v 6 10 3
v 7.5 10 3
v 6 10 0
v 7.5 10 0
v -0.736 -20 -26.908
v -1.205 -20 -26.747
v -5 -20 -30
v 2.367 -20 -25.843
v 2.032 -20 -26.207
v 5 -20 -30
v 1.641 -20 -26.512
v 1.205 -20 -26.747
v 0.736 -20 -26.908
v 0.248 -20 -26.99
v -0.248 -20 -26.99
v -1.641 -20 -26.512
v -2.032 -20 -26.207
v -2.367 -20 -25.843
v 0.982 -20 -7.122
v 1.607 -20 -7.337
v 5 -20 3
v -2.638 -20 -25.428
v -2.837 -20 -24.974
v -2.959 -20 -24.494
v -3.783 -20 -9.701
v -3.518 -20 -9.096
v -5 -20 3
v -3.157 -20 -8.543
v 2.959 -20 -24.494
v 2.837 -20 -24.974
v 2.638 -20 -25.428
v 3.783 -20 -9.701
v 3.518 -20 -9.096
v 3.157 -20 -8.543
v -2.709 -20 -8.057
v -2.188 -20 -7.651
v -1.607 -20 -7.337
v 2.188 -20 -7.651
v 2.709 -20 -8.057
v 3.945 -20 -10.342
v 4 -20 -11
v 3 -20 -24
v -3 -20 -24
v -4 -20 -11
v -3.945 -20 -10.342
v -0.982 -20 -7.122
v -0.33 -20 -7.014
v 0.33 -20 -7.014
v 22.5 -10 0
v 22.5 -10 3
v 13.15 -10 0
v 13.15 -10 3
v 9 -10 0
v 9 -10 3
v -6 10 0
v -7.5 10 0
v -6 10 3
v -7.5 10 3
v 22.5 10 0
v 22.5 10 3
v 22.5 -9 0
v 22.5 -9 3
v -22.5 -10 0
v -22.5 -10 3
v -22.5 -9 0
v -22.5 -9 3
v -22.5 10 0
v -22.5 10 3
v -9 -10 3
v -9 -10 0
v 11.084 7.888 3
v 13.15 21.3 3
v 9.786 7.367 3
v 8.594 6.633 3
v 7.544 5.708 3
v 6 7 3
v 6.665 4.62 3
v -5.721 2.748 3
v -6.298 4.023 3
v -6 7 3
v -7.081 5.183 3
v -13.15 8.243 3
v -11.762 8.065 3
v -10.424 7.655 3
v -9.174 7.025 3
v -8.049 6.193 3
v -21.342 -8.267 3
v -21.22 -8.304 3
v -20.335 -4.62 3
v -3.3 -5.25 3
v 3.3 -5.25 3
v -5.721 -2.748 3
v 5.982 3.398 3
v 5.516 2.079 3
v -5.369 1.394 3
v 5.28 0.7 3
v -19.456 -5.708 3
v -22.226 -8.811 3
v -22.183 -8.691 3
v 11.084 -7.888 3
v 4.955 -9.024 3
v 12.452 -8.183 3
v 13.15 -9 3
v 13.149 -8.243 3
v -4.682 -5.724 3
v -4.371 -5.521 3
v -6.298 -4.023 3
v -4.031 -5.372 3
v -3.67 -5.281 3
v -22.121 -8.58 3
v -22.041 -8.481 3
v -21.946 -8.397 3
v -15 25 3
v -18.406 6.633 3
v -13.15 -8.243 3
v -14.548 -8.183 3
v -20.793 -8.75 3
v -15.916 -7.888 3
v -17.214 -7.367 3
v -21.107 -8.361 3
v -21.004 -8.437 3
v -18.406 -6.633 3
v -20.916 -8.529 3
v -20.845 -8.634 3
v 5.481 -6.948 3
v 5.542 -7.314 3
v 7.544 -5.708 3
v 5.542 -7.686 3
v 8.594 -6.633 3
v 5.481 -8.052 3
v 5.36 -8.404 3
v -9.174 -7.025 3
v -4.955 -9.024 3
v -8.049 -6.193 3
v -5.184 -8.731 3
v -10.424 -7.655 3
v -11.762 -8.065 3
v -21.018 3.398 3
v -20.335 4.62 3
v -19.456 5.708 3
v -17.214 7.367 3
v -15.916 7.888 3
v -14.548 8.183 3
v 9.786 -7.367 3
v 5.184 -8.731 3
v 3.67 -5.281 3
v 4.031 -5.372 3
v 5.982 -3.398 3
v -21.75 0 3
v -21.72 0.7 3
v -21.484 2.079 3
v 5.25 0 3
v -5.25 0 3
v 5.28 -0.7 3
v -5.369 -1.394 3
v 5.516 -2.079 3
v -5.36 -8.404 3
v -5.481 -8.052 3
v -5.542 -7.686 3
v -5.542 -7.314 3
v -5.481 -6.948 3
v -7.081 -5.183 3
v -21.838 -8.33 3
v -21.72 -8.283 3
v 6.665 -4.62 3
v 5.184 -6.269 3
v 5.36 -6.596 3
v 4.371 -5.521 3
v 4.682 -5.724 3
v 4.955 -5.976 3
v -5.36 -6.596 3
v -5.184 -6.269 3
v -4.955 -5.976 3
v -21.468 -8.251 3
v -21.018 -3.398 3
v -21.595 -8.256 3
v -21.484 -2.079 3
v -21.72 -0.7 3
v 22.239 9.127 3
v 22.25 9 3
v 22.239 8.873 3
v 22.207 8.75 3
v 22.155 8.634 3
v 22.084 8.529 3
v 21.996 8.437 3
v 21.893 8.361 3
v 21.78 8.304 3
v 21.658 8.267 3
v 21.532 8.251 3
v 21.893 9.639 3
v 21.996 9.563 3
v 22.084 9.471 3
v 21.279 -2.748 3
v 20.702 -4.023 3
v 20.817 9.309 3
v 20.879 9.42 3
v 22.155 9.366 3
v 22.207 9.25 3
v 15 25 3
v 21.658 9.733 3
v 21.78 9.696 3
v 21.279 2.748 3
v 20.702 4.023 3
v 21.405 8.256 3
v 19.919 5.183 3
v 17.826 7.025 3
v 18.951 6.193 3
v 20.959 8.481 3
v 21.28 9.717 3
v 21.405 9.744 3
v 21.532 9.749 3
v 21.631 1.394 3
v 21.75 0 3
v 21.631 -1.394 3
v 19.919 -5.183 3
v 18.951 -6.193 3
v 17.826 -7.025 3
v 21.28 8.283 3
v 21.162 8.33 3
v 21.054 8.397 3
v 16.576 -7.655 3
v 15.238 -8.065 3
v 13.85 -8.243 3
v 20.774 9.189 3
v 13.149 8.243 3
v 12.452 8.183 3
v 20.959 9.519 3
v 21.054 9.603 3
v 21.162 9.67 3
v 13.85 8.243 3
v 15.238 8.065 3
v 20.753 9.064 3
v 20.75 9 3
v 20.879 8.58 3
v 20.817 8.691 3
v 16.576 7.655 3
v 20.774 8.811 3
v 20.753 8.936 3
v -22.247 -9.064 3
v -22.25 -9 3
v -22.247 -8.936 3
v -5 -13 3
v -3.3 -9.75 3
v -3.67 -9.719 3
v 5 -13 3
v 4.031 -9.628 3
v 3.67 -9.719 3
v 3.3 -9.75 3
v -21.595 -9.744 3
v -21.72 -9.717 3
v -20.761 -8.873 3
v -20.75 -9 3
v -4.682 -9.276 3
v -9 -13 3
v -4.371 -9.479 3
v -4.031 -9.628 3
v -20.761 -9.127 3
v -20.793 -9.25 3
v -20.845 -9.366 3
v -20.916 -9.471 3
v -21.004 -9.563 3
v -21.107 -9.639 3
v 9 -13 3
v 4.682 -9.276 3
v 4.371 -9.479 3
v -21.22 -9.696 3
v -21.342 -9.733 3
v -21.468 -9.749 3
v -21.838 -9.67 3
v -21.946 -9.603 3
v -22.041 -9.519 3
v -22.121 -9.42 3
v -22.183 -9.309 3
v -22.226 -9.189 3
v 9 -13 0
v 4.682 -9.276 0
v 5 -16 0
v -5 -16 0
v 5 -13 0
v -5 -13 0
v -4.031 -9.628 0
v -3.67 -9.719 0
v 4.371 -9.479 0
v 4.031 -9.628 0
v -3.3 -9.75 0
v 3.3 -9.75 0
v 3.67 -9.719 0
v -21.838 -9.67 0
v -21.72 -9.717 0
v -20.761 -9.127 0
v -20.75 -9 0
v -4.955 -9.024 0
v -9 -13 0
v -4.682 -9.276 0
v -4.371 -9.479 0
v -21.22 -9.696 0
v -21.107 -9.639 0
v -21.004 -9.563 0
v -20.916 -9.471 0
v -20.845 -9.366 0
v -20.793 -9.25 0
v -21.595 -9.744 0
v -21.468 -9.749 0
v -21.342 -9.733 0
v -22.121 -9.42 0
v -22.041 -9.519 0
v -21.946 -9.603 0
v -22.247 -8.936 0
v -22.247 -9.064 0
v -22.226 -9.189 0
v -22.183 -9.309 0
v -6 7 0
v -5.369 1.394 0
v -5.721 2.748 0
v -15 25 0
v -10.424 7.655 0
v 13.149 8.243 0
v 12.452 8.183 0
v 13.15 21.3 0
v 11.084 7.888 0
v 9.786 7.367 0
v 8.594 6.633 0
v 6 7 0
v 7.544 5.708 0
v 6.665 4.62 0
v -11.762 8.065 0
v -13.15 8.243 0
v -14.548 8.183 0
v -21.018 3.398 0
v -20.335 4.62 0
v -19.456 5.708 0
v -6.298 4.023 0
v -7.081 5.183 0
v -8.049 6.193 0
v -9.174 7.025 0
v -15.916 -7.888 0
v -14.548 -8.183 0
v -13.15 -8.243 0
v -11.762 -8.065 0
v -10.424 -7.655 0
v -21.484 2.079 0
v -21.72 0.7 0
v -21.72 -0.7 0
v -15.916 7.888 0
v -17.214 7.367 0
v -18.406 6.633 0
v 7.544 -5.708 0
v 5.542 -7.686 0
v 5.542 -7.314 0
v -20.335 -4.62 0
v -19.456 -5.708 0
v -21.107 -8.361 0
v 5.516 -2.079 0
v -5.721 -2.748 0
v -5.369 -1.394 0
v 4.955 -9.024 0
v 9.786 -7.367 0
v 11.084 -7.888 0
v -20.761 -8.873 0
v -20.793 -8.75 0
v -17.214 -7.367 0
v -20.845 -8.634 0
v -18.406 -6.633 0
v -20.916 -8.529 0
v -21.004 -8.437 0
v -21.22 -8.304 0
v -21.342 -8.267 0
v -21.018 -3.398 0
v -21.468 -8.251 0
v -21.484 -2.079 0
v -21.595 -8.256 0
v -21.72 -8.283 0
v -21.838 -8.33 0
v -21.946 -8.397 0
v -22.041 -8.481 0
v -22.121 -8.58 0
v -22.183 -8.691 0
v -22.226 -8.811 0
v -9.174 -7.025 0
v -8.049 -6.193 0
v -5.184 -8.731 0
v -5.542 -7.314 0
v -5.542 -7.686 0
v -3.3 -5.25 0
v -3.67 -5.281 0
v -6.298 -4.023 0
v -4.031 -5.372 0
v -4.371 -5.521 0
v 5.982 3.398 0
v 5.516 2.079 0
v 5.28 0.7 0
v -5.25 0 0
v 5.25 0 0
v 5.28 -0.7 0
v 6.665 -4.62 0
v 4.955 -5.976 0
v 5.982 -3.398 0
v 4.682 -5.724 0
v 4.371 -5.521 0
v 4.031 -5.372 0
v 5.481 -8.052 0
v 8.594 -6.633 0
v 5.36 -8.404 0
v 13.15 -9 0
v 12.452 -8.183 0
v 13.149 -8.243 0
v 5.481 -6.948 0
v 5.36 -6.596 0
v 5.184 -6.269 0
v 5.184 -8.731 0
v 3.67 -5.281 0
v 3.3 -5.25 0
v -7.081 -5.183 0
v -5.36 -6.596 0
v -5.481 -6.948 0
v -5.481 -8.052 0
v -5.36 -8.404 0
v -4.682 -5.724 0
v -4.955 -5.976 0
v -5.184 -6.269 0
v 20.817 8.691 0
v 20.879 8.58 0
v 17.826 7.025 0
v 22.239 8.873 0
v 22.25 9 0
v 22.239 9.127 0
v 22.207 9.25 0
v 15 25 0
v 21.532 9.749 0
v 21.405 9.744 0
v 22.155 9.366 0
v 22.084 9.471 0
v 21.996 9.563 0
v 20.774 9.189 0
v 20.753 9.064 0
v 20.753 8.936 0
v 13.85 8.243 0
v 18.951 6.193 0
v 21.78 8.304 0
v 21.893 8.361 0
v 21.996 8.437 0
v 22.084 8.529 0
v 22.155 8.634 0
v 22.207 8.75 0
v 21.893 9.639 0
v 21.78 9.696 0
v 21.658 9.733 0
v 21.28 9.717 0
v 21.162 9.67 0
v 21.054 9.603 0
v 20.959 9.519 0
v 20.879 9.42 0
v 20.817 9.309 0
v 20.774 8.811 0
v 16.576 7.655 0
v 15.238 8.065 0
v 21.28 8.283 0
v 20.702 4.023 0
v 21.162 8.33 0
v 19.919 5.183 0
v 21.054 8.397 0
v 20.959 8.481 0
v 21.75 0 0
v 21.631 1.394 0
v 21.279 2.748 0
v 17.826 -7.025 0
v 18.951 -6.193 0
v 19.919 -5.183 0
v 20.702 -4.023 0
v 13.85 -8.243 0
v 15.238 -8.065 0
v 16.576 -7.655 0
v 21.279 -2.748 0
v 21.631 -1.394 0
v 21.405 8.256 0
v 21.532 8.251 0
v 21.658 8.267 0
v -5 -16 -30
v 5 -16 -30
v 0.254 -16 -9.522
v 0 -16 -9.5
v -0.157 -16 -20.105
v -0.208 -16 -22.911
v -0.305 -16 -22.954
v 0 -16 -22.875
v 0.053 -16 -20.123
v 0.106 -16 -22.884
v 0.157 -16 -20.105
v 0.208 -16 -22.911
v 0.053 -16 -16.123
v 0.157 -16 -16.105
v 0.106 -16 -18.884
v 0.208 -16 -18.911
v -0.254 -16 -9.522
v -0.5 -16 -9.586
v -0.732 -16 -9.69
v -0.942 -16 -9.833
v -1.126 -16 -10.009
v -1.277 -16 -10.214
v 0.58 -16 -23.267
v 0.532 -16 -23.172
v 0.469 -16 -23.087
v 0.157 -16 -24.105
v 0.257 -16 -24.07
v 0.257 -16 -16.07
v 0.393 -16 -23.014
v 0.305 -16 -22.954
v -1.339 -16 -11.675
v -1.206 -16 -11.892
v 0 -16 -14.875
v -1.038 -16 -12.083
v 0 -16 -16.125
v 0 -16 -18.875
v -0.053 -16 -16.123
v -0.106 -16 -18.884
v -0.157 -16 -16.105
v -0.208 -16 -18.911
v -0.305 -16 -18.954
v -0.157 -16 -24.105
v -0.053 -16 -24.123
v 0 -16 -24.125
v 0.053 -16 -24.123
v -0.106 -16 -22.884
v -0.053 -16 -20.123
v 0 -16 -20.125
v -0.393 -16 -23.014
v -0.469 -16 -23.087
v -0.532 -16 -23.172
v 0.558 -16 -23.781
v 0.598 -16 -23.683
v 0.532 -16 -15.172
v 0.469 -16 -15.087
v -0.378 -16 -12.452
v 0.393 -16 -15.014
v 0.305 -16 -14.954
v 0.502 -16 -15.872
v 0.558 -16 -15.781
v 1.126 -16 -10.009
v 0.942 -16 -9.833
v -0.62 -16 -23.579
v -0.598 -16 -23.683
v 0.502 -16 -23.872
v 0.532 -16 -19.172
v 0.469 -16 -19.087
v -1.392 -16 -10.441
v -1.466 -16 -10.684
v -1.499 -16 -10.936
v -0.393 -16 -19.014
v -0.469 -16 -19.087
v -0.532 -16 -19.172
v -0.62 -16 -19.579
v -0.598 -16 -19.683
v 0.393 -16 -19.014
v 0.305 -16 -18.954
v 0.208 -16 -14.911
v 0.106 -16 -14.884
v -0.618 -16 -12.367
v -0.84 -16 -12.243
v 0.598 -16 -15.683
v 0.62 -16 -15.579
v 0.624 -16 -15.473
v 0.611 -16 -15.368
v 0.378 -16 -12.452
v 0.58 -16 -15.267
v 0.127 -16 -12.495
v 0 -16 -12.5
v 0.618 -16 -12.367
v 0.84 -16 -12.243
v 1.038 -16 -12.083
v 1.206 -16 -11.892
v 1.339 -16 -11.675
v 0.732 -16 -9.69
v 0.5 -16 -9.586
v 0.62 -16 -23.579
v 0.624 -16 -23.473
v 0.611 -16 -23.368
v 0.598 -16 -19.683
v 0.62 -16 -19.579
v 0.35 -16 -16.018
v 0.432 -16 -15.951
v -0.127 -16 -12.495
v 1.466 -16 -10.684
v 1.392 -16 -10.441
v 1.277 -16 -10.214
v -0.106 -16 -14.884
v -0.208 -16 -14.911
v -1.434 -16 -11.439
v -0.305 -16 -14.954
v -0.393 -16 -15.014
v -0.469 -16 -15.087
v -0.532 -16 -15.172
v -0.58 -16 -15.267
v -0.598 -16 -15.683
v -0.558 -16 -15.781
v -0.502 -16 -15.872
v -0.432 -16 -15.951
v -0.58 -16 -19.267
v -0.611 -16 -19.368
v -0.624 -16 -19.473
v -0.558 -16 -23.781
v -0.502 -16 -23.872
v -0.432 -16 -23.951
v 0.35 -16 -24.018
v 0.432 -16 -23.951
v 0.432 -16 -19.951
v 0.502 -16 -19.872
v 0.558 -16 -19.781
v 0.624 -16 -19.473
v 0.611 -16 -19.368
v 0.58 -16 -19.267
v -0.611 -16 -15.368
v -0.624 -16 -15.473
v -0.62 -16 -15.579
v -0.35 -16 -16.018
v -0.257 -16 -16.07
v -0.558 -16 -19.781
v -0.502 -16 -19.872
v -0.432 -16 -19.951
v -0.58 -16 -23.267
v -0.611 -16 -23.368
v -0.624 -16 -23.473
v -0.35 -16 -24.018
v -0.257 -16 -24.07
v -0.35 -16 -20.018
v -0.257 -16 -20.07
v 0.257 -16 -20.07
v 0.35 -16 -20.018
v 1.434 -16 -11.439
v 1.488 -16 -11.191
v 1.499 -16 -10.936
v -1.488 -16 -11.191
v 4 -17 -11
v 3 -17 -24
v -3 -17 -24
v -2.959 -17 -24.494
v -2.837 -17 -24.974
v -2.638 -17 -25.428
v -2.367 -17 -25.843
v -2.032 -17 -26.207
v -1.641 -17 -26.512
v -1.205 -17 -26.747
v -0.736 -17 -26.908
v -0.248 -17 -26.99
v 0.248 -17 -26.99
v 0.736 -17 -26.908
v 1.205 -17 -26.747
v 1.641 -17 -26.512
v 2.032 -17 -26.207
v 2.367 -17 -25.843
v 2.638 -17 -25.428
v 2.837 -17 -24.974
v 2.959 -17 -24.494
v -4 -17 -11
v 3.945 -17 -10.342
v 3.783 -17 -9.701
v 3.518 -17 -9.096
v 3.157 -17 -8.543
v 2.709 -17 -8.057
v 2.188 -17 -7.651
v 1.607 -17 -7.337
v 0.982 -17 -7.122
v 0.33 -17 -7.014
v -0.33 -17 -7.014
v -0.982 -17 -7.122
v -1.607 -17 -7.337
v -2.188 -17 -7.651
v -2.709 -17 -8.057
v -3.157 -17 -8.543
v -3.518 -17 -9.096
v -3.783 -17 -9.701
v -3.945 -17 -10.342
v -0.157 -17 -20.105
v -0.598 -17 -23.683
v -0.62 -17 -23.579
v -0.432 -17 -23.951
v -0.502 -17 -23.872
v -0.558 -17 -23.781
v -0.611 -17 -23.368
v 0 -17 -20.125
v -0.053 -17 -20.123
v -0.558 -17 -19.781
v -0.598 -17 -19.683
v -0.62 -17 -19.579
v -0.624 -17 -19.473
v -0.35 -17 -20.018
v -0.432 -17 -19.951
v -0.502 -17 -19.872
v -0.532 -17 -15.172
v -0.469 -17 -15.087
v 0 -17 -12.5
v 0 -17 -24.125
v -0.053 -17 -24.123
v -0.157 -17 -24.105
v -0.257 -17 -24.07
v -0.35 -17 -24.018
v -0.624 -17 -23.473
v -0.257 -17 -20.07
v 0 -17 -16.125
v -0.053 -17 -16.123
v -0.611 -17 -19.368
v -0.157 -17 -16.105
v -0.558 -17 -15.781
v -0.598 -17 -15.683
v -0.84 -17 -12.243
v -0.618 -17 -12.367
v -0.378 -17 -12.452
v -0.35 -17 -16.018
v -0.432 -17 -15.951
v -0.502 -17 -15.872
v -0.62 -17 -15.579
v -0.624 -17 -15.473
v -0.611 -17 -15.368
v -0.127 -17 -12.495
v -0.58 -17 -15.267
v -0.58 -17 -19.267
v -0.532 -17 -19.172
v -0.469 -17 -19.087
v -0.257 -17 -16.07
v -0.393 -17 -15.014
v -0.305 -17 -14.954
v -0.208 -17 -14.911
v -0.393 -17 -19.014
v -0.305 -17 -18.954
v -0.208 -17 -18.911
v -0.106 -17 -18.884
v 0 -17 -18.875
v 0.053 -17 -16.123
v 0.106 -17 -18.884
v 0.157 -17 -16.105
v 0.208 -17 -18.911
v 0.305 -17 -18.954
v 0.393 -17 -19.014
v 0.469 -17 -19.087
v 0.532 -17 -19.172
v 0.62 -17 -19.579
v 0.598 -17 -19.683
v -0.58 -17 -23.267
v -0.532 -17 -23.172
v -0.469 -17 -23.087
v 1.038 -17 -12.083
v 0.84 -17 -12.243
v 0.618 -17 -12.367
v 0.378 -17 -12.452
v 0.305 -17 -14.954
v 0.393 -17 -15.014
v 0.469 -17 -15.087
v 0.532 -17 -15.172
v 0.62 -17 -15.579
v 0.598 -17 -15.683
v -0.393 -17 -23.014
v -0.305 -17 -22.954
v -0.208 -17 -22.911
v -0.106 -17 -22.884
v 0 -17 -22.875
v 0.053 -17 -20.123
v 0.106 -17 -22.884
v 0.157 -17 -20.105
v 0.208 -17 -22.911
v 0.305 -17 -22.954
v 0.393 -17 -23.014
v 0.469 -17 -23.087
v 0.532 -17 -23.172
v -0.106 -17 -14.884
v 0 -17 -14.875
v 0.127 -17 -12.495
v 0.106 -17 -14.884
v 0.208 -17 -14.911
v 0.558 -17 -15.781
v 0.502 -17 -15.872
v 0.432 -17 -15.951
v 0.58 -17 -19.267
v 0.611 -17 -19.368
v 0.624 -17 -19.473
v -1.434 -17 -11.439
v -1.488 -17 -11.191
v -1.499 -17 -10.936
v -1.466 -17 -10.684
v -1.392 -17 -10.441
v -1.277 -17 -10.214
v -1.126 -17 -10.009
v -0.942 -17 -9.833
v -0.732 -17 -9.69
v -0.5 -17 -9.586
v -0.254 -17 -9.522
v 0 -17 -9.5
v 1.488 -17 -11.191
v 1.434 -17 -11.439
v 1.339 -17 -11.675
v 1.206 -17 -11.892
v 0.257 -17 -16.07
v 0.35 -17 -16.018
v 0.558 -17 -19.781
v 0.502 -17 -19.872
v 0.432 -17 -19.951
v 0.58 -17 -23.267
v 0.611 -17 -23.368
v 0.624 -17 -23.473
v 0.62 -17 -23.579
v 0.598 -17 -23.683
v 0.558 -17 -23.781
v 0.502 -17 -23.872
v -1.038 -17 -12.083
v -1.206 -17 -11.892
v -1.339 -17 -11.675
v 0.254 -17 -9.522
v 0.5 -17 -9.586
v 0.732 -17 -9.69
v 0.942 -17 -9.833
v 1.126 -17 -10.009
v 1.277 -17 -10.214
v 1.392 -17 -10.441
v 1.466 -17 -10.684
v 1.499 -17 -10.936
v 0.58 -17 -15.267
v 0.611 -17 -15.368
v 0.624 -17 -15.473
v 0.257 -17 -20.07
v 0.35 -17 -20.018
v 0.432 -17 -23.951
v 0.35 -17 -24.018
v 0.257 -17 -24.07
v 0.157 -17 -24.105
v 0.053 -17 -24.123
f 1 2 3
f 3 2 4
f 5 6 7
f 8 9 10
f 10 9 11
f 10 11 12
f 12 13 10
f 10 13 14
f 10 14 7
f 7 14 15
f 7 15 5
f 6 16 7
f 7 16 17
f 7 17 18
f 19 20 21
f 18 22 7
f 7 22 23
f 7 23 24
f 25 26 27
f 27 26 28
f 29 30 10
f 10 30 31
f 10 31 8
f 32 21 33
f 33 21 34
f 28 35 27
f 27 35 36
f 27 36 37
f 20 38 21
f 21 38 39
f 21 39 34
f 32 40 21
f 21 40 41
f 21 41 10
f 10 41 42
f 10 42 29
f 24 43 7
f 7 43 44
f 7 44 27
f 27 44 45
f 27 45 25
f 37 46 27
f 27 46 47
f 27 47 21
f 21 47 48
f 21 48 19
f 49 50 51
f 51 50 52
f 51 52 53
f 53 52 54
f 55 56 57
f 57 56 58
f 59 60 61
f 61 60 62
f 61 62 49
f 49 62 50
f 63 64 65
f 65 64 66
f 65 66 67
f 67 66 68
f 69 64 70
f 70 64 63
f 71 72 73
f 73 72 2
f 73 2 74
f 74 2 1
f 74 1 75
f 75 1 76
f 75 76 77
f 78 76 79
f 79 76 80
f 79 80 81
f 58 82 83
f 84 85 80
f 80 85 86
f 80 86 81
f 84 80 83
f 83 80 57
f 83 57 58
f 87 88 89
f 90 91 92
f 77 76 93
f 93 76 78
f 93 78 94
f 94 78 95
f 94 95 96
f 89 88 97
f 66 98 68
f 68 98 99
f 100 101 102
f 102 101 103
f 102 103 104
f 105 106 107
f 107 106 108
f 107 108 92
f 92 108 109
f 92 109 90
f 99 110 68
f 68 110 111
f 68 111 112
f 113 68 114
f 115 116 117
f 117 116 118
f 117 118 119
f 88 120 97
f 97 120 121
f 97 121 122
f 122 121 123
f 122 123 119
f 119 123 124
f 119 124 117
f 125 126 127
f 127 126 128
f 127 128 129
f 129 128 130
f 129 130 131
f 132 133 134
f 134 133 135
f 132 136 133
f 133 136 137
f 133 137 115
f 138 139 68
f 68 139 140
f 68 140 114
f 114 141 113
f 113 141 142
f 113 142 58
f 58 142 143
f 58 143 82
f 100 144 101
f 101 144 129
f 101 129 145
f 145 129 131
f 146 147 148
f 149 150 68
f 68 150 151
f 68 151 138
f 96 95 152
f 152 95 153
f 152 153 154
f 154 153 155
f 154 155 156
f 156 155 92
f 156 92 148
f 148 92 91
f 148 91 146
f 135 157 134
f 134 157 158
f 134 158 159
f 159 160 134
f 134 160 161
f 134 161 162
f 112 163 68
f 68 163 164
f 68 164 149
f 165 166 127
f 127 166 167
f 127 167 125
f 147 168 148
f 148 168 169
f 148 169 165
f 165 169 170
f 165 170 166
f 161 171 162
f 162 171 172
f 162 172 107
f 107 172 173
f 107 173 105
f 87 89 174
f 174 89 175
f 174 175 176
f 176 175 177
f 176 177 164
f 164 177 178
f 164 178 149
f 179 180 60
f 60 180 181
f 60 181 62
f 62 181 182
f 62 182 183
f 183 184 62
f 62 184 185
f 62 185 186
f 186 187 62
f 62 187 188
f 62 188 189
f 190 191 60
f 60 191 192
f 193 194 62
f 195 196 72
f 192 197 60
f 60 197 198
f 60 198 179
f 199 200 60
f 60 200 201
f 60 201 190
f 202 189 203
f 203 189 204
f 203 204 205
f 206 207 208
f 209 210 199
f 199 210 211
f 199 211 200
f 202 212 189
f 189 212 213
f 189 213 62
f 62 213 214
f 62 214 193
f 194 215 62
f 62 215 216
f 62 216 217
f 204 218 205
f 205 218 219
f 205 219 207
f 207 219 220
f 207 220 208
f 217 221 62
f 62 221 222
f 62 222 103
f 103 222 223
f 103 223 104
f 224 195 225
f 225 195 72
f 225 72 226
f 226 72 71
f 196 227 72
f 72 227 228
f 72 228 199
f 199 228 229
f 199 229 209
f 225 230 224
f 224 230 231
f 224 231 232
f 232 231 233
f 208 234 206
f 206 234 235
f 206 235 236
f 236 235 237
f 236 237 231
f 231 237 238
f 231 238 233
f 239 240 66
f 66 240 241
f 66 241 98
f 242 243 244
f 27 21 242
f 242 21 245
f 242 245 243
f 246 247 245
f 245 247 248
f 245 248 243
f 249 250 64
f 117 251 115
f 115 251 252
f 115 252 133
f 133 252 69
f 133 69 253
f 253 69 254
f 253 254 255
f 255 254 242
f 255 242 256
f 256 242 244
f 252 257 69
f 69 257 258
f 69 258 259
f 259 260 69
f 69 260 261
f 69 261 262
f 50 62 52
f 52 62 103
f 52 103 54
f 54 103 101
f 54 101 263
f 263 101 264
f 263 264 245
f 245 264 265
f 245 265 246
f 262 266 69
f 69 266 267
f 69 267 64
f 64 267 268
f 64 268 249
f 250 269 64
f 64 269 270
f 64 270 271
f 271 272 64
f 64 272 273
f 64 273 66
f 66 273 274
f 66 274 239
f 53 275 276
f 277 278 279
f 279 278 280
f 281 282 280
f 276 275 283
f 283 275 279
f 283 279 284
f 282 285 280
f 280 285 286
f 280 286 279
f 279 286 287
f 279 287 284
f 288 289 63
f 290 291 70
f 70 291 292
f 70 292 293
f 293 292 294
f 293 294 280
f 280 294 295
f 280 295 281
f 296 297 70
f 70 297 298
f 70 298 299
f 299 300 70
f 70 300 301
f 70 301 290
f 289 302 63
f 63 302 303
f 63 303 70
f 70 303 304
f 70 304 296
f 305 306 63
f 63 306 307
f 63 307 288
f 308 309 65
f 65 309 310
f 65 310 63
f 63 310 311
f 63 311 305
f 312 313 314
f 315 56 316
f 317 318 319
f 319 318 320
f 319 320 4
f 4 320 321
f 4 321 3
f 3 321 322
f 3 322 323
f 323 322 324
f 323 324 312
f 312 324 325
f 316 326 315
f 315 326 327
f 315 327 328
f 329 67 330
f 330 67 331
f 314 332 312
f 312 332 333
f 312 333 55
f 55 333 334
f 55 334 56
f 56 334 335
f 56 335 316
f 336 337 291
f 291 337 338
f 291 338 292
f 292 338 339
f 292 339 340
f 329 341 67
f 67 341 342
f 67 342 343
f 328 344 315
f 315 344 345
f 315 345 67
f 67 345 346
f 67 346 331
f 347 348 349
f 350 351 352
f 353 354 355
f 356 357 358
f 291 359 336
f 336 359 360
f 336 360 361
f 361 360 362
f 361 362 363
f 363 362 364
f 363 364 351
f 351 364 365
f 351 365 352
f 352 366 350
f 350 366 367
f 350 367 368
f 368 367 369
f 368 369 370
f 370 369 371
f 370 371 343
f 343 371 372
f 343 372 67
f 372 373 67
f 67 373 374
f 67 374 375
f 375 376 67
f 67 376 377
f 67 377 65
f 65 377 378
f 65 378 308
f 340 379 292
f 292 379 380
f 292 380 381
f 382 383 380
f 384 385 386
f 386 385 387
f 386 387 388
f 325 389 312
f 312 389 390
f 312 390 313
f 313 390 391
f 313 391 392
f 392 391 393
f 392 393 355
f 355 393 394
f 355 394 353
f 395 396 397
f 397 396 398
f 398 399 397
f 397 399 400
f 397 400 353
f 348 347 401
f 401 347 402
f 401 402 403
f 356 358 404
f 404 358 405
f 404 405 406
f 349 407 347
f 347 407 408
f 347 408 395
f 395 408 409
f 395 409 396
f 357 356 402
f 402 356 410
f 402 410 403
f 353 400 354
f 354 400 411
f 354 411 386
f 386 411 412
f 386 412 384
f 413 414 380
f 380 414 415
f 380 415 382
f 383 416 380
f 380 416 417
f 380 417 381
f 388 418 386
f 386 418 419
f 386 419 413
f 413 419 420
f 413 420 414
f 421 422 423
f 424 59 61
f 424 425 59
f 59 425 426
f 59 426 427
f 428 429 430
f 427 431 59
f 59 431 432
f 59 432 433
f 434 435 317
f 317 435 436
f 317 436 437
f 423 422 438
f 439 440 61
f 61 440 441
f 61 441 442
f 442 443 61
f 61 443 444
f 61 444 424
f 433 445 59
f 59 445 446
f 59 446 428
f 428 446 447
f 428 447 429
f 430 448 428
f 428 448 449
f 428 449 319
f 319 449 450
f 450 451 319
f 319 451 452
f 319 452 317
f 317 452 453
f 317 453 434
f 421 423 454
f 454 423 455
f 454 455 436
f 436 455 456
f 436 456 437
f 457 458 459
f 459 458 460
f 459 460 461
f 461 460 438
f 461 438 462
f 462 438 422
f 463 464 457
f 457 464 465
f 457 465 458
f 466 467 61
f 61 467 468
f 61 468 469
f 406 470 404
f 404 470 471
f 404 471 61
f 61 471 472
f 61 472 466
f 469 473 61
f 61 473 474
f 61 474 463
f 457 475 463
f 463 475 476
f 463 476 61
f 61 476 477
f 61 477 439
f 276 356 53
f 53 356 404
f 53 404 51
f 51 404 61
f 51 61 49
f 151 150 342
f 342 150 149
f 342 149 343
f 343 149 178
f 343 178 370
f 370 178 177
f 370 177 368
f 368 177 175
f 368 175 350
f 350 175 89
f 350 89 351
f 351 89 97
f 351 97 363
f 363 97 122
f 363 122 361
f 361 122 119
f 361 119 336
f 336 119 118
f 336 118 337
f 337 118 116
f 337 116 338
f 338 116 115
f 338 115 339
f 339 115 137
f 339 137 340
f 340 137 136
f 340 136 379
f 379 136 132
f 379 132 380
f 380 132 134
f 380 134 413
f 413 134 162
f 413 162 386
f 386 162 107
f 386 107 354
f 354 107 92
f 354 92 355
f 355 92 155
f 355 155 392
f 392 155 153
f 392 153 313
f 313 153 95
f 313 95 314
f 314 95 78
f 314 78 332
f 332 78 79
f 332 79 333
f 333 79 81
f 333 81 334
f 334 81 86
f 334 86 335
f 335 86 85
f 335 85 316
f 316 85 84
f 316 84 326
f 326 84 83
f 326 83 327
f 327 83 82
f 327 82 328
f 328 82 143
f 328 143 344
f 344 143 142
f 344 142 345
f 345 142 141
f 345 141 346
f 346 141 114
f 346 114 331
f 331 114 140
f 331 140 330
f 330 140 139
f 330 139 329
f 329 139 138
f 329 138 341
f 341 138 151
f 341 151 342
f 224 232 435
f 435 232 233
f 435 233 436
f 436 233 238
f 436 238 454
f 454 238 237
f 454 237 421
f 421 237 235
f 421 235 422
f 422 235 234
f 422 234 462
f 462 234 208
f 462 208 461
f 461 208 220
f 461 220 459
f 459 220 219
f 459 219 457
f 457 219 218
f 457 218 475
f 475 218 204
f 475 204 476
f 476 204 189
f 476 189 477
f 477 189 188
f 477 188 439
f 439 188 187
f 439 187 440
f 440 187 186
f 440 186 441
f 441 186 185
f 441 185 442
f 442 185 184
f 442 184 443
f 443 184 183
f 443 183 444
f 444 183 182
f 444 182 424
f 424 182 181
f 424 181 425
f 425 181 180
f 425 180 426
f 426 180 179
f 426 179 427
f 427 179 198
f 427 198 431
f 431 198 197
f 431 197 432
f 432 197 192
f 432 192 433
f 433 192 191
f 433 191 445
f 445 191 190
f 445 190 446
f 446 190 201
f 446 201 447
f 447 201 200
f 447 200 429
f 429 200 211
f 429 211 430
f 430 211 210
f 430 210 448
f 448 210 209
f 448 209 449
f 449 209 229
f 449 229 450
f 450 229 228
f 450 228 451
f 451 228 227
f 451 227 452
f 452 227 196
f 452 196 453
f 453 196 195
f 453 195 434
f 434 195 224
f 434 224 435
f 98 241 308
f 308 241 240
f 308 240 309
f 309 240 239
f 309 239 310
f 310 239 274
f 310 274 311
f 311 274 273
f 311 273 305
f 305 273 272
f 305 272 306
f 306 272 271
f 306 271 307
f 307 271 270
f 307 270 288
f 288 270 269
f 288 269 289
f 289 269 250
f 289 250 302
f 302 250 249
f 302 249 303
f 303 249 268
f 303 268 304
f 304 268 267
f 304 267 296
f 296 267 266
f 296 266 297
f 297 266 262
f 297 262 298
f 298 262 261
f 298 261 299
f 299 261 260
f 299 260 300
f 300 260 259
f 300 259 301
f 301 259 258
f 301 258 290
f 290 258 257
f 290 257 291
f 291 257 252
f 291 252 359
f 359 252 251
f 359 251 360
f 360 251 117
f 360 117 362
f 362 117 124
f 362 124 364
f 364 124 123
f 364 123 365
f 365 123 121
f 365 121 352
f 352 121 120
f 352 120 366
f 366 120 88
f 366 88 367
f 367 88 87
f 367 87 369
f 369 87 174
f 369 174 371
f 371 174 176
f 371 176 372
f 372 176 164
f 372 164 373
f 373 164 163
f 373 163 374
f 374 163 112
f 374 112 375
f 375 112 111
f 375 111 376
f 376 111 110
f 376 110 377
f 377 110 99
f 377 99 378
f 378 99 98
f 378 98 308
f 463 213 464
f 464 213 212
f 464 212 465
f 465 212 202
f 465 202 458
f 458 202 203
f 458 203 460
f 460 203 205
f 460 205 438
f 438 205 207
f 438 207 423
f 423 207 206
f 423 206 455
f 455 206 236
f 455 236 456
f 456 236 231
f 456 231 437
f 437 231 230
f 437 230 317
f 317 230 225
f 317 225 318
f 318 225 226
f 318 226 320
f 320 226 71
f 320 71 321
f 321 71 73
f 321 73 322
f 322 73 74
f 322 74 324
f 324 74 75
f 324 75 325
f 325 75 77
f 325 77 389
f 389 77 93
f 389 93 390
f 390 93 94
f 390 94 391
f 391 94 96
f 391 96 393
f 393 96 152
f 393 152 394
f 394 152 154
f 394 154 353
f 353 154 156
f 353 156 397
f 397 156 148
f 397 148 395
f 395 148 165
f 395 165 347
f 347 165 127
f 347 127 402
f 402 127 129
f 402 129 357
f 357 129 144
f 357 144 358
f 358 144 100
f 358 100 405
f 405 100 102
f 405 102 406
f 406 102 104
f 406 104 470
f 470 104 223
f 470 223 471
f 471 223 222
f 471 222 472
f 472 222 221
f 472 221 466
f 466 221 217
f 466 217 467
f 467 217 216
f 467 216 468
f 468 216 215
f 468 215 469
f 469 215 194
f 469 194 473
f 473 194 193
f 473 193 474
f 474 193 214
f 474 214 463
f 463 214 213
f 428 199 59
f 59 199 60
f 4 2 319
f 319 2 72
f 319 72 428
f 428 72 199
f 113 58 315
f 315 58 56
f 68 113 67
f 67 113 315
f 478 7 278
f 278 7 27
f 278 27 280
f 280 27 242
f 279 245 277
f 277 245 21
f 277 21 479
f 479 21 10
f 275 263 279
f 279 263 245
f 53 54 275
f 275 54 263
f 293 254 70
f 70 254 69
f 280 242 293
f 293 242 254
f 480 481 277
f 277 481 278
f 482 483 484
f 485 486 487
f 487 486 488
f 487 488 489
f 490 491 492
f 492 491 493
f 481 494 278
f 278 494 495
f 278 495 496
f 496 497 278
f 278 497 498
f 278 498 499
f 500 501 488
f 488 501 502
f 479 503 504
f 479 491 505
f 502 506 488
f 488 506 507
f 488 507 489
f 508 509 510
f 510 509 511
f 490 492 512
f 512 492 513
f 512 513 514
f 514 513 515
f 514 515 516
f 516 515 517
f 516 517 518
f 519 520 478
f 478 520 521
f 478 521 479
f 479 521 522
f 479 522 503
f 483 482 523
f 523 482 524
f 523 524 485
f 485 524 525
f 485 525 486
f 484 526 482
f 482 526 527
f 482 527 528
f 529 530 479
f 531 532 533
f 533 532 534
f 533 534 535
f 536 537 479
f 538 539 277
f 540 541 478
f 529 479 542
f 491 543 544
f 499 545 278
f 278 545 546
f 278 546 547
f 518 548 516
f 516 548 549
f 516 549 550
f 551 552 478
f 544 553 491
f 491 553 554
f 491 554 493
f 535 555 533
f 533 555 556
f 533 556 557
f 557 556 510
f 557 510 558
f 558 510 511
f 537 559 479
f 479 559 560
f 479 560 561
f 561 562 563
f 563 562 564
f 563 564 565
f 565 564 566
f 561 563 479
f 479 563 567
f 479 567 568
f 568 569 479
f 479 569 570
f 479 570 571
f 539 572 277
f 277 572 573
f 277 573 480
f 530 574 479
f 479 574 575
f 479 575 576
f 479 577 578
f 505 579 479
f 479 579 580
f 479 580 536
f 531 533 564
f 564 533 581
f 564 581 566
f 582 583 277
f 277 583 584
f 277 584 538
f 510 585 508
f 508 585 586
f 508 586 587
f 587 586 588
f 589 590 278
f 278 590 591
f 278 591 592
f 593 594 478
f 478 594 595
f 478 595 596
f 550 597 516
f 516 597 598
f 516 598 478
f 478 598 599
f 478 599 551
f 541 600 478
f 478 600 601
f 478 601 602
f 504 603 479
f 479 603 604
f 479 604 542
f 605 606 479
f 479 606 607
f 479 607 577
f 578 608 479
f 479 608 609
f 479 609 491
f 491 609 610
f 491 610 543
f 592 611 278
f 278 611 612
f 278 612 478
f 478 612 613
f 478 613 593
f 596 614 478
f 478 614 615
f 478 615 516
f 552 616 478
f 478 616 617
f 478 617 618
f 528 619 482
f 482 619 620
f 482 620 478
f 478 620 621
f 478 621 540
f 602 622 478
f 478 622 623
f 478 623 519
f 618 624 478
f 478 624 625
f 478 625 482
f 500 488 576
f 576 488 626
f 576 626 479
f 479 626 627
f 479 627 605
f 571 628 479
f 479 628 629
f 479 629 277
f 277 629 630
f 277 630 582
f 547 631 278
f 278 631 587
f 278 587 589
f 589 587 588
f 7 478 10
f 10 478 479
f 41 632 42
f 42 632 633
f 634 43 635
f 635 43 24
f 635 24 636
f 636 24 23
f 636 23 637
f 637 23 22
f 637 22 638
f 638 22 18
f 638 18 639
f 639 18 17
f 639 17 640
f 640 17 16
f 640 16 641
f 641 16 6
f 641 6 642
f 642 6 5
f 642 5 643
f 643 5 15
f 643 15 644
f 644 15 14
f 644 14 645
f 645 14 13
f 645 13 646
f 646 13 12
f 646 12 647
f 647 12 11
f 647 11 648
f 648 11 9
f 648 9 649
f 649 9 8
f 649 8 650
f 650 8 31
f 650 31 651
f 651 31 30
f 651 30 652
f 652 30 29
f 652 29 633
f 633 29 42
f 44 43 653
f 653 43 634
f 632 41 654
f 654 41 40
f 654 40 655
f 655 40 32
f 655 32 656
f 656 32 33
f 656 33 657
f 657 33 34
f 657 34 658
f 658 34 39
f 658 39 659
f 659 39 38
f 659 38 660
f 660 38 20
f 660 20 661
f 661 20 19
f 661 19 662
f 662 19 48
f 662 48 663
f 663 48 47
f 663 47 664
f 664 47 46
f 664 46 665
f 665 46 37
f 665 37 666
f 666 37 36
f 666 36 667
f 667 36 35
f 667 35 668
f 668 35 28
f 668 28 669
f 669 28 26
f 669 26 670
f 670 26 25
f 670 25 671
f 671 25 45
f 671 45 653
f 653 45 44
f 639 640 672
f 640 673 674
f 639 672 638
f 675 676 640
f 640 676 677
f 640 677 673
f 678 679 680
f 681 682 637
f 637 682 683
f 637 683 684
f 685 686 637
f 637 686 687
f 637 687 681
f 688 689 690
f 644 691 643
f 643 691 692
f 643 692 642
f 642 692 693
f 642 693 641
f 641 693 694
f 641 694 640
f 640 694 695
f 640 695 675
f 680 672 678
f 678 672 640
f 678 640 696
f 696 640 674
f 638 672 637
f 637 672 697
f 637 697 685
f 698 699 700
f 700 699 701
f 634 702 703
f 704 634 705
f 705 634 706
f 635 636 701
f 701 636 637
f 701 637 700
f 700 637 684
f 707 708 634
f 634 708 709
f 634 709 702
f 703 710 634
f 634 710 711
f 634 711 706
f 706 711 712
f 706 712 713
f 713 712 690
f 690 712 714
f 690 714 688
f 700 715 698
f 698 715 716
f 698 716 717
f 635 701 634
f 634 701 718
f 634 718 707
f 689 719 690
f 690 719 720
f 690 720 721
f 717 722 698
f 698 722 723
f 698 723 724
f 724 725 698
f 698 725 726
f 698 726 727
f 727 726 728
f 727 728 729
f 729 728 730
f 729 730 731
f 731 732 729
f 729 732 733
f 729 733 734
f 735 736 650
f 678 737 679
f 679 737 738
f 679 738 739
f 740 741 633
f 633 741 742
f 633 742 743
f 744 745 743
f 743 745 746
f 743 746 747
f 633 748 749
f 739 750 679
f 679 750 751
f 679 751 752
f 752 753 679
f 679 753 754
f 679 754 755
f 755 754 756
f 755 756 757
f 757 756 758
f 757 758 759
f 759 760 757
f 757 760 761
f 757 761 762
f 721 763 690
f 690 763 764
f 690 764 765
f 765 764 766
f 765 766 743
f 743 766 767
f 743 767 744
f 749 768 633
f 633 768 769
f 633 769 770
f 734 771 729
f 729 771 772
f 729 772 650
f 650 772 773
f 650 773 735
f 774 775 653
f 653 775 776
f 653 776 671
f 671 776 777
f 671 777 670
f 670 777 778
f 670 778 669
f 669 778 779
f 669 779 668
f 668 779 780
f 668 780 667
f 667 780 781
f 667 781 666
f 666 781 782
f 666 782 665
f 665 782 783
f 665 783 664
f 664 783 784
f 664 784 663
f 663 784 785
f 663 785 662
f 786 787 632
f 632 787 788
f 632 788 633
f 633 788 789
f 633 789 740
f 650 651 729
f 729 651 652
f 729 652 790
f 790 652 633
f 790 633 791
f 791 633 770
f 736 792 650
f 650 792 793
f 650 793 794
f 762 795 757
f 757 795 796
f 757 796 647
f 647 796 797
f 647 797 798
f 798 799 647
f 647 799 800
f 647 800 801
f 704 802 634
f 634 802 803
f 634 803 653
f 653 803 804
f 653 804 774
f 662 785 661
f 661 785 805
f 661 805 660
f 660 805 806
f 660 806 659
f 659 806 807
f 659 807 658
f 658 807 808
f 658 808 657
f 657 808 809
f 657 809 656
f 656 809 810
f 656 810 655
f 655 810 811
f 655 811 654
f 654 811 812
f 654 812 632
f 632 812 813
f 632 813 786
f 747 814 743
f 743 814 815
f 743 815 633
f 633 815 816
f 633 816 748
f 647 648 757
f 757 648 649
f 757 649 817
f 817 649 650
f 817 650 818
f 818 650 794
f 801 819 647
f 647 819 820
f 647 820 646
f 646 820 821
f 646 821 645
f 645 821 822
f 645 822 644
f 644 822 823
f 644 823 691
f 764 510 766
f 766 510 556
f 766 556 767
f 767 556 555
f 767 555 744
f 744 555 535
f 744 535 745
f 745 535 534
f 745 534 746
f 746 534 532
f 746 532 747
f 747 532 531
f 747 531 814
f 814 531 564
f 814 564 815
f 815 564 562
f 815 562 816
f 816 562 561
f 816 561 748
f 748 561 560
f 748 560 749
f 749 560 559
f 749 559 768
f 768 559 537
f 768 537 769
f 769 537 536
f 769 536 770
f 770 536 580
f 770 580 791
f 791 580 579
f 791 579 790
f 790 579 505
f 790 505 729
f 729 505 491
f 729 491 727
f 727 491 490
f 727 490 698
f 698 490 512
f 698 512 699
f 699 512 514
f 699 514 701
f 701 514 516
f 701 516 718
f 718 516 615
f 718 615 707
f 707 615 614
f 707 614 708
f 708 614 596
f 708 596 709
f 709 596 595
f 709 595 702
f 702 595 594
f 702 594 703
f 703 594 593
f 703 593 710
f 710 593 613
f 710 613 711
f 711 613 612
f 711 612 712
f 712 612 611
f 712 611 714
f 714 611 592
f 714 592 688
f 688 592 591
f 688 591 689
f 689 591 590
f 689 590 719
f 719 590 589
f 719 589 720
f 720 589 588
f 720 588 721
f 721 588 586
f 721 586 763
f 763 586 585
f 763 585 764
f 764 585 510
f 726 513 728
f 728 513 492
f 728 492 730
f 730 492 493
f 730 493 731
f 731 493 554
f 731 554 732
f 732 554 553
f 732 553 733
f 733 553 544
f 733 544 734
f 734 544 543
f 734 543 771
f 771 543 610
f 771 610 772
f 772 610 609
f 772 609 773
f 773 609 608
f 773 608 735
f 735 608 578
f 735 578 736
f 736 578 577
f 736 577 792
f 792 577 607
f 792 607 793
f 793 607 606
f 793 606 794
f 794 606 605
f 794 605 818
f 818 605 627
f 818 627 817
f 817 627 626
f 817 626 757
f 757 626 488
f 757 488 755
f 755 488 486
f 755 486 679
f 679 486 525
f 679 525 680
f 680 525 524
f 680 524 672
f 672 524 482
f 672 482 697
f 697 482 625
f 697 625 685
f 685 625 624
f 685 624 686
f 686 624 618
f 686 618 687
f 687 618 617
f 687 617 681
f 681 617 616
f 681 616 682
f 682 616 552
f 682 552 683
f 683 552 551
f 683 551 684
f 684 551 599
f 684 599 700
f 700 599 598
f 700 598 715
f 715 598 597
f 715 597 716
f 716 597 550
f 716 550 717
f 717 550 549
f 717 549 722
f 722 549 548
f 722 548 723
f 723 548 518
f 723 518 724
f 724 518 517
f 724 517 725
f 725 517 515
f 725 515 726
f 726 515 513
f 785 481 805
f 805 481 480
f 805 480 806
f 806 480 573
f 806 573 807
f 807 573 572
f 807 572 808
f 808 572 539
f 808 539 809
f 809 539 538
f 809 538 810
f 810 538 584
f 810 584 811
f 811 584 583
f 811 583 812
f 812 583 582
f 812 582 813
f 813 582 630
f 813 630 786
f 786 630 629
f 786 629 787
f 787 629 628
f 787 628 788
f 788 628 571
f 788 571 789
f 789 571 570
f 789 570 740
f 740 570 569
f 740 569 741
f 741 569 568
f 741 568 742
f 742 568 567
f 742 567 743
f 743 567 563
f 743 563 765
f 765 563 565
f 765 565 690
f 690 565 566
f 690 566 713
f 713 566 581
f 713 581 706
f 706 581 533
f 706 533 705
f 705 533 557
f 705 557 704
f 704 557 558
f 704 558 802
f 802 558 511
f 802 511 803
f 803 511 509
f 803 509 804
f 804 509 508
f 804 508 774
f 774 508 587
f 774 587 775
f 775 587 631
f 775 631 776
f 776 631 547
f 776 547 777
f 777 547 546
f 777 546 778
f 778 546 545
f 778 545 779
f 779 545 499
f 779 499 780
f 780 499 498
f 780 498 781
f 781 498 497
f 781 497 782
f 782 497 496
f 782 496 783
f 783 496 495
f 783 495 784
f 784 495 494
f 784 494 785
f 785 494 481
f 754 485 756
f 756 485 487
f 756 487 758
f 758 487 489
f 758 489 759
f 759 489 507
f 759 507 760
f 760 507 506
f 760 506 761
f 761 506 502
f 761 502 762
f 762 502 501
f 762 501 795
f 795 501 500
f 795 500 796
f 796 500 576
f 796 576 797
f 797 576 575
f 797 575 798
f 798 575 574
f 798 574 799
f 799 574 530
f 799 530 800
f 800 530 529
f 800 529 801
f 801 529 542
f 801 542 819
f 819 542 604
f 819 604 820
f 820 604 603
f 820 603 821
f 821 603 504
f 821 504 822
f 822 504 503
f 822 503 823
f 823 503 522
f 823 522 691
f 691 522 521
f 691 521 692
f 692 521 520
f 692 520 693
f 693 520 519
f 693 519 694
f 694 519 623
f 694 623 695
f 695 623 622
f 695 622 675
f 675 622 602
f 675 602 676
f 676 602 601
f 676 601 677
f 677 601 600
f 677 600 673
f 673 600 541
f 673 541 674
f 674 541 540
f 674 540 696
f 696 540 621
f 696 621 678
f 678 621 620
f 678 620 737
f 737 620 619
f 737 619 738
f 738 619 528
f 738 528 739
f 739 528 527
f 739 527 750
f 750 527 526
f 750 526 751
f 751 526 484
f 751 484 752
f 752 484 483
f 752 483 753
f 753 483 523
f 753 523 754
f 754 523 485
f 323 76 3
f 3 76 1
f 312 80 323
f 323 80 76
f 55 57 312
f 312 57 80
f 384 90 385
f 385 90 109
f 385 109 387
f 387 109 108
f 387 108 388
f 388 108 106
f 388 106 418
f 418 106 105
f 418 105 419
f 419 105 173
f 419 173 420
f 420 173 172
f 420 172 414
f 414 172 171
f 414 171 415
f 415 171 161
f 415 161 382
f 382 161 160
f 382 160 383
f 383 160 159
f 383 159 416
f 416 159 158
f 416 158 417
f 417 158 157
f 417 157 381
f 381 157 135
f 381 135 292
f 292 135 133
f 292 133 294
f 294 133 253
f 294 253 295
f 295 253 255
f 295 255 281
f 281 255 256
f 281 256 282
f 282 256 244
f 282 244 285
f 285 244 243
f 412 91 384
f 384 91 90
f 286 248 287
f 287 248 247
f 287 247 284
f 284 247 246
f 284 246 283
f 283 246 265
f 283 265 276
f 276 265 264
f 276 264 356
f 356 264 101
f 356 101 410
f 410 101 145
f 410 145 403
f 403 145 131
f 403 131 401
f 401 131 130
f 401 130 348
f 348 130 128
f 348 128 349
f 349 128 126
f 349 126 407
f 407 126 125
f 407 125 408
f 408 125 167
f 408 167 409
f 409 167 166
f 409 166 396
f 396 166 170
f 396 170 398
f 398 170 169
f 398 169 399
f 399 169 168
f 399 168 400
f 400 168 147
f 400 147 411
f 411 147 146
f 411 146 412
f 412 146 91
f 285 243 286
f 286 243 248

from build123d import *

# Parameters (mm, degrees)
SKETCH1_W               = 45
SKETCH1_H               = 20
BOSS_EXTRUDE1_DEPTH     = 3
CUT_EXTRUDE1_DEPTH      = 25.80423351
CUT_EXTRUDE1_DEPTH_BACK = 25.80423351
SKETCH2_R               = 8.25
SKETCH2_R_2             = 0.75
BOSS_EXTRUDE2_DEPTH     = 3
BOSS_EXTRUDE3_DEPTH     = 3
SKETCH9_W               = 10
SKETCH9_H               = 4
BOSS_EXTRUDE4_DEPTH     = 30
CUT_EXTRUDE2_DEPTH      = 3
CUT_EXTRUDE3_DEPTH      = 56.563027275
CUT_EXTRUDE3_DEPTH_BACK = 56.563027275
SKETCH11_R              = 0.625
SKETCH11_R_2            = 1.5
CUT_EXTRUDE4_DEPTH      = 48.11952886
CUT_EXTRUDE4_DEPTH_BACK = 48.11952886
SKETCH12_W              = 12
SKETCH12_H              = 3


with BuildPart() as part:
    # Sketch1 → Boss-Extrude1 (new body)
    with BuildSketch(Plane.XY):
        Rectangle(SKETCH1_W, SKETCH1_H)
    extrude(amount=BOSS_EXTRUDE1_DEPTH)

    # Sketch2 → Cut-Extrude1 (cut, two sides: drawn at the far end of the back side and taken through both)
    with BuildSketch(Plane.XY.offset(3).offset(-CUT_EXTRUDE1_DEPTH_BACK)):
        with Locations((-13.5, 0)):
            Circle(SKETCH2_R)
        with Locations(Location((13.5, 0, 0), (0, 0, 180))):
            Circle(SKETCH2_R)
        with Locations((-21.5, -9)):
            Circle(SKETCH2_R_2)
        with Locations((21.5, 9)):
            Circle(SKETCH2_R_2)
    extrude(amount=CUT_EXTRUDE1_DEPTH + CUT_EXTRUDE1_DEPTH_BACK, mode=Mode.SUBTRACT)

    # Sketch7 → Boss-Extrude2 (add)
    with BuildSketch(Plane.XY.offset(3)):
        Polygon((-15, 25), (-22.5, 10), (-7.5, 10), align=None)
        Polygon((15, 25), (7.5, 10), (22.5, 10), align=None)
    extrude(amount=-BOSS_EXTRUDE2_DEPTH)

    # Sketch8 → Boss-Extrude3 (add)
    with BuildSketch(Plane.XY.offset(3)):
        Polygon((-5, -13), (-5, -20), (5, -20), (5, -13), (9, -13), (9, -10), (-9, -10), (-9, -13), align=None)
    extrude(amount=-BOSS_EXTRUDE3_DEPTH)

    # Sketch9 → Boss-Extrude4 (add)
    with BuildSketch(Plane(origin=(0, 0, 0), x_dir=(-1, 0, 0), z_dir=(0, 0, -1))):
        with Locations((0, -18)):
            Rectangle(SKETCH9_W, SKETCH9_H)
    extrude(amount=BOSS_EXTRUDE4_DEPTH)

    # Sketch10 → Cut-Extrude2 (cut)
    with BuildSketch(Plane.XZ.offset(20)):
        with BuildLine():
            Line((-4, -11), (-3, -24))
            ThreePointArc((-3, -24), (0, -27), (3, -24))
            Line((3, -24), (4, -11))
            ThreePointArc((4, -11), (0, -7), (-4, -11))
        make_face()
    extrude(amount=-CUT_EXTRUDE2_DEPTH, mode=Mode.SUBTRACT)

    # Sketch11 → Cut-Extrude3 (cut, two sides: drawn at the far end of the back side and taken through both)
    with BuildSketch(Plane(origin=(0, -16, 0), x_dir=(1, 0, 0), z_dir=(0, 1, 0)).offset(-CUT_EXTRUDE3_DEPTH_BACK)):
        with Locations(Location((0, 15.5, 0), (0, 0, 90))):
            Circle(SKETCH11_R)
        with Locations(Location((0, 19.5, 0), (0, 0, 90))):
            Circle(SKETCH11_R)
        with Locations(Location((0, 11, 0), (0, 0, 90))):
            Circle(SKETCH11_R_2)
        with Locations(Location((0, 23.5, 0), (0, 0, 90))):
            Circle(SKETCH11_R)
    extrude(amount=CUT_EXTRUDE3_DEPTH + CUT_EXTRUDE3_DEPTH_BACK, mode=Mode.SUBTRACT)

    # Sketch12 → Cut-Extrude4 (cut, two sides: drawn at the far end of the back side and taken through both)
    with BuildSketch(Plane.XY.offset(3).offset(-CUT_EXTRUDE4_DEPTH_BACK)):
        with BuildLine():
            Line((-3.3, -5.25), (3.3, -5.25))
            ThreePointArc((3.3, -5.25), (5.55, -7.5), (3.3, -9.75))
            Line((3.3, -9.75), (-3.3, -9.75))
            ThreePointArc((-3.3, -9.75), (-5.55, -7.5), (-3.3, -5.25))
        make_face()
        with Locations((0, 8.5)):
            Rectangle(SKETCH12_W, SKETCH12_H)
    extrude(amount=CUT_EXTRUDE4_DEPTH + CUT_EXTRUDE4_DEPTH_BACK, mode=Mode.SUBTRACT)


solid = part.part
